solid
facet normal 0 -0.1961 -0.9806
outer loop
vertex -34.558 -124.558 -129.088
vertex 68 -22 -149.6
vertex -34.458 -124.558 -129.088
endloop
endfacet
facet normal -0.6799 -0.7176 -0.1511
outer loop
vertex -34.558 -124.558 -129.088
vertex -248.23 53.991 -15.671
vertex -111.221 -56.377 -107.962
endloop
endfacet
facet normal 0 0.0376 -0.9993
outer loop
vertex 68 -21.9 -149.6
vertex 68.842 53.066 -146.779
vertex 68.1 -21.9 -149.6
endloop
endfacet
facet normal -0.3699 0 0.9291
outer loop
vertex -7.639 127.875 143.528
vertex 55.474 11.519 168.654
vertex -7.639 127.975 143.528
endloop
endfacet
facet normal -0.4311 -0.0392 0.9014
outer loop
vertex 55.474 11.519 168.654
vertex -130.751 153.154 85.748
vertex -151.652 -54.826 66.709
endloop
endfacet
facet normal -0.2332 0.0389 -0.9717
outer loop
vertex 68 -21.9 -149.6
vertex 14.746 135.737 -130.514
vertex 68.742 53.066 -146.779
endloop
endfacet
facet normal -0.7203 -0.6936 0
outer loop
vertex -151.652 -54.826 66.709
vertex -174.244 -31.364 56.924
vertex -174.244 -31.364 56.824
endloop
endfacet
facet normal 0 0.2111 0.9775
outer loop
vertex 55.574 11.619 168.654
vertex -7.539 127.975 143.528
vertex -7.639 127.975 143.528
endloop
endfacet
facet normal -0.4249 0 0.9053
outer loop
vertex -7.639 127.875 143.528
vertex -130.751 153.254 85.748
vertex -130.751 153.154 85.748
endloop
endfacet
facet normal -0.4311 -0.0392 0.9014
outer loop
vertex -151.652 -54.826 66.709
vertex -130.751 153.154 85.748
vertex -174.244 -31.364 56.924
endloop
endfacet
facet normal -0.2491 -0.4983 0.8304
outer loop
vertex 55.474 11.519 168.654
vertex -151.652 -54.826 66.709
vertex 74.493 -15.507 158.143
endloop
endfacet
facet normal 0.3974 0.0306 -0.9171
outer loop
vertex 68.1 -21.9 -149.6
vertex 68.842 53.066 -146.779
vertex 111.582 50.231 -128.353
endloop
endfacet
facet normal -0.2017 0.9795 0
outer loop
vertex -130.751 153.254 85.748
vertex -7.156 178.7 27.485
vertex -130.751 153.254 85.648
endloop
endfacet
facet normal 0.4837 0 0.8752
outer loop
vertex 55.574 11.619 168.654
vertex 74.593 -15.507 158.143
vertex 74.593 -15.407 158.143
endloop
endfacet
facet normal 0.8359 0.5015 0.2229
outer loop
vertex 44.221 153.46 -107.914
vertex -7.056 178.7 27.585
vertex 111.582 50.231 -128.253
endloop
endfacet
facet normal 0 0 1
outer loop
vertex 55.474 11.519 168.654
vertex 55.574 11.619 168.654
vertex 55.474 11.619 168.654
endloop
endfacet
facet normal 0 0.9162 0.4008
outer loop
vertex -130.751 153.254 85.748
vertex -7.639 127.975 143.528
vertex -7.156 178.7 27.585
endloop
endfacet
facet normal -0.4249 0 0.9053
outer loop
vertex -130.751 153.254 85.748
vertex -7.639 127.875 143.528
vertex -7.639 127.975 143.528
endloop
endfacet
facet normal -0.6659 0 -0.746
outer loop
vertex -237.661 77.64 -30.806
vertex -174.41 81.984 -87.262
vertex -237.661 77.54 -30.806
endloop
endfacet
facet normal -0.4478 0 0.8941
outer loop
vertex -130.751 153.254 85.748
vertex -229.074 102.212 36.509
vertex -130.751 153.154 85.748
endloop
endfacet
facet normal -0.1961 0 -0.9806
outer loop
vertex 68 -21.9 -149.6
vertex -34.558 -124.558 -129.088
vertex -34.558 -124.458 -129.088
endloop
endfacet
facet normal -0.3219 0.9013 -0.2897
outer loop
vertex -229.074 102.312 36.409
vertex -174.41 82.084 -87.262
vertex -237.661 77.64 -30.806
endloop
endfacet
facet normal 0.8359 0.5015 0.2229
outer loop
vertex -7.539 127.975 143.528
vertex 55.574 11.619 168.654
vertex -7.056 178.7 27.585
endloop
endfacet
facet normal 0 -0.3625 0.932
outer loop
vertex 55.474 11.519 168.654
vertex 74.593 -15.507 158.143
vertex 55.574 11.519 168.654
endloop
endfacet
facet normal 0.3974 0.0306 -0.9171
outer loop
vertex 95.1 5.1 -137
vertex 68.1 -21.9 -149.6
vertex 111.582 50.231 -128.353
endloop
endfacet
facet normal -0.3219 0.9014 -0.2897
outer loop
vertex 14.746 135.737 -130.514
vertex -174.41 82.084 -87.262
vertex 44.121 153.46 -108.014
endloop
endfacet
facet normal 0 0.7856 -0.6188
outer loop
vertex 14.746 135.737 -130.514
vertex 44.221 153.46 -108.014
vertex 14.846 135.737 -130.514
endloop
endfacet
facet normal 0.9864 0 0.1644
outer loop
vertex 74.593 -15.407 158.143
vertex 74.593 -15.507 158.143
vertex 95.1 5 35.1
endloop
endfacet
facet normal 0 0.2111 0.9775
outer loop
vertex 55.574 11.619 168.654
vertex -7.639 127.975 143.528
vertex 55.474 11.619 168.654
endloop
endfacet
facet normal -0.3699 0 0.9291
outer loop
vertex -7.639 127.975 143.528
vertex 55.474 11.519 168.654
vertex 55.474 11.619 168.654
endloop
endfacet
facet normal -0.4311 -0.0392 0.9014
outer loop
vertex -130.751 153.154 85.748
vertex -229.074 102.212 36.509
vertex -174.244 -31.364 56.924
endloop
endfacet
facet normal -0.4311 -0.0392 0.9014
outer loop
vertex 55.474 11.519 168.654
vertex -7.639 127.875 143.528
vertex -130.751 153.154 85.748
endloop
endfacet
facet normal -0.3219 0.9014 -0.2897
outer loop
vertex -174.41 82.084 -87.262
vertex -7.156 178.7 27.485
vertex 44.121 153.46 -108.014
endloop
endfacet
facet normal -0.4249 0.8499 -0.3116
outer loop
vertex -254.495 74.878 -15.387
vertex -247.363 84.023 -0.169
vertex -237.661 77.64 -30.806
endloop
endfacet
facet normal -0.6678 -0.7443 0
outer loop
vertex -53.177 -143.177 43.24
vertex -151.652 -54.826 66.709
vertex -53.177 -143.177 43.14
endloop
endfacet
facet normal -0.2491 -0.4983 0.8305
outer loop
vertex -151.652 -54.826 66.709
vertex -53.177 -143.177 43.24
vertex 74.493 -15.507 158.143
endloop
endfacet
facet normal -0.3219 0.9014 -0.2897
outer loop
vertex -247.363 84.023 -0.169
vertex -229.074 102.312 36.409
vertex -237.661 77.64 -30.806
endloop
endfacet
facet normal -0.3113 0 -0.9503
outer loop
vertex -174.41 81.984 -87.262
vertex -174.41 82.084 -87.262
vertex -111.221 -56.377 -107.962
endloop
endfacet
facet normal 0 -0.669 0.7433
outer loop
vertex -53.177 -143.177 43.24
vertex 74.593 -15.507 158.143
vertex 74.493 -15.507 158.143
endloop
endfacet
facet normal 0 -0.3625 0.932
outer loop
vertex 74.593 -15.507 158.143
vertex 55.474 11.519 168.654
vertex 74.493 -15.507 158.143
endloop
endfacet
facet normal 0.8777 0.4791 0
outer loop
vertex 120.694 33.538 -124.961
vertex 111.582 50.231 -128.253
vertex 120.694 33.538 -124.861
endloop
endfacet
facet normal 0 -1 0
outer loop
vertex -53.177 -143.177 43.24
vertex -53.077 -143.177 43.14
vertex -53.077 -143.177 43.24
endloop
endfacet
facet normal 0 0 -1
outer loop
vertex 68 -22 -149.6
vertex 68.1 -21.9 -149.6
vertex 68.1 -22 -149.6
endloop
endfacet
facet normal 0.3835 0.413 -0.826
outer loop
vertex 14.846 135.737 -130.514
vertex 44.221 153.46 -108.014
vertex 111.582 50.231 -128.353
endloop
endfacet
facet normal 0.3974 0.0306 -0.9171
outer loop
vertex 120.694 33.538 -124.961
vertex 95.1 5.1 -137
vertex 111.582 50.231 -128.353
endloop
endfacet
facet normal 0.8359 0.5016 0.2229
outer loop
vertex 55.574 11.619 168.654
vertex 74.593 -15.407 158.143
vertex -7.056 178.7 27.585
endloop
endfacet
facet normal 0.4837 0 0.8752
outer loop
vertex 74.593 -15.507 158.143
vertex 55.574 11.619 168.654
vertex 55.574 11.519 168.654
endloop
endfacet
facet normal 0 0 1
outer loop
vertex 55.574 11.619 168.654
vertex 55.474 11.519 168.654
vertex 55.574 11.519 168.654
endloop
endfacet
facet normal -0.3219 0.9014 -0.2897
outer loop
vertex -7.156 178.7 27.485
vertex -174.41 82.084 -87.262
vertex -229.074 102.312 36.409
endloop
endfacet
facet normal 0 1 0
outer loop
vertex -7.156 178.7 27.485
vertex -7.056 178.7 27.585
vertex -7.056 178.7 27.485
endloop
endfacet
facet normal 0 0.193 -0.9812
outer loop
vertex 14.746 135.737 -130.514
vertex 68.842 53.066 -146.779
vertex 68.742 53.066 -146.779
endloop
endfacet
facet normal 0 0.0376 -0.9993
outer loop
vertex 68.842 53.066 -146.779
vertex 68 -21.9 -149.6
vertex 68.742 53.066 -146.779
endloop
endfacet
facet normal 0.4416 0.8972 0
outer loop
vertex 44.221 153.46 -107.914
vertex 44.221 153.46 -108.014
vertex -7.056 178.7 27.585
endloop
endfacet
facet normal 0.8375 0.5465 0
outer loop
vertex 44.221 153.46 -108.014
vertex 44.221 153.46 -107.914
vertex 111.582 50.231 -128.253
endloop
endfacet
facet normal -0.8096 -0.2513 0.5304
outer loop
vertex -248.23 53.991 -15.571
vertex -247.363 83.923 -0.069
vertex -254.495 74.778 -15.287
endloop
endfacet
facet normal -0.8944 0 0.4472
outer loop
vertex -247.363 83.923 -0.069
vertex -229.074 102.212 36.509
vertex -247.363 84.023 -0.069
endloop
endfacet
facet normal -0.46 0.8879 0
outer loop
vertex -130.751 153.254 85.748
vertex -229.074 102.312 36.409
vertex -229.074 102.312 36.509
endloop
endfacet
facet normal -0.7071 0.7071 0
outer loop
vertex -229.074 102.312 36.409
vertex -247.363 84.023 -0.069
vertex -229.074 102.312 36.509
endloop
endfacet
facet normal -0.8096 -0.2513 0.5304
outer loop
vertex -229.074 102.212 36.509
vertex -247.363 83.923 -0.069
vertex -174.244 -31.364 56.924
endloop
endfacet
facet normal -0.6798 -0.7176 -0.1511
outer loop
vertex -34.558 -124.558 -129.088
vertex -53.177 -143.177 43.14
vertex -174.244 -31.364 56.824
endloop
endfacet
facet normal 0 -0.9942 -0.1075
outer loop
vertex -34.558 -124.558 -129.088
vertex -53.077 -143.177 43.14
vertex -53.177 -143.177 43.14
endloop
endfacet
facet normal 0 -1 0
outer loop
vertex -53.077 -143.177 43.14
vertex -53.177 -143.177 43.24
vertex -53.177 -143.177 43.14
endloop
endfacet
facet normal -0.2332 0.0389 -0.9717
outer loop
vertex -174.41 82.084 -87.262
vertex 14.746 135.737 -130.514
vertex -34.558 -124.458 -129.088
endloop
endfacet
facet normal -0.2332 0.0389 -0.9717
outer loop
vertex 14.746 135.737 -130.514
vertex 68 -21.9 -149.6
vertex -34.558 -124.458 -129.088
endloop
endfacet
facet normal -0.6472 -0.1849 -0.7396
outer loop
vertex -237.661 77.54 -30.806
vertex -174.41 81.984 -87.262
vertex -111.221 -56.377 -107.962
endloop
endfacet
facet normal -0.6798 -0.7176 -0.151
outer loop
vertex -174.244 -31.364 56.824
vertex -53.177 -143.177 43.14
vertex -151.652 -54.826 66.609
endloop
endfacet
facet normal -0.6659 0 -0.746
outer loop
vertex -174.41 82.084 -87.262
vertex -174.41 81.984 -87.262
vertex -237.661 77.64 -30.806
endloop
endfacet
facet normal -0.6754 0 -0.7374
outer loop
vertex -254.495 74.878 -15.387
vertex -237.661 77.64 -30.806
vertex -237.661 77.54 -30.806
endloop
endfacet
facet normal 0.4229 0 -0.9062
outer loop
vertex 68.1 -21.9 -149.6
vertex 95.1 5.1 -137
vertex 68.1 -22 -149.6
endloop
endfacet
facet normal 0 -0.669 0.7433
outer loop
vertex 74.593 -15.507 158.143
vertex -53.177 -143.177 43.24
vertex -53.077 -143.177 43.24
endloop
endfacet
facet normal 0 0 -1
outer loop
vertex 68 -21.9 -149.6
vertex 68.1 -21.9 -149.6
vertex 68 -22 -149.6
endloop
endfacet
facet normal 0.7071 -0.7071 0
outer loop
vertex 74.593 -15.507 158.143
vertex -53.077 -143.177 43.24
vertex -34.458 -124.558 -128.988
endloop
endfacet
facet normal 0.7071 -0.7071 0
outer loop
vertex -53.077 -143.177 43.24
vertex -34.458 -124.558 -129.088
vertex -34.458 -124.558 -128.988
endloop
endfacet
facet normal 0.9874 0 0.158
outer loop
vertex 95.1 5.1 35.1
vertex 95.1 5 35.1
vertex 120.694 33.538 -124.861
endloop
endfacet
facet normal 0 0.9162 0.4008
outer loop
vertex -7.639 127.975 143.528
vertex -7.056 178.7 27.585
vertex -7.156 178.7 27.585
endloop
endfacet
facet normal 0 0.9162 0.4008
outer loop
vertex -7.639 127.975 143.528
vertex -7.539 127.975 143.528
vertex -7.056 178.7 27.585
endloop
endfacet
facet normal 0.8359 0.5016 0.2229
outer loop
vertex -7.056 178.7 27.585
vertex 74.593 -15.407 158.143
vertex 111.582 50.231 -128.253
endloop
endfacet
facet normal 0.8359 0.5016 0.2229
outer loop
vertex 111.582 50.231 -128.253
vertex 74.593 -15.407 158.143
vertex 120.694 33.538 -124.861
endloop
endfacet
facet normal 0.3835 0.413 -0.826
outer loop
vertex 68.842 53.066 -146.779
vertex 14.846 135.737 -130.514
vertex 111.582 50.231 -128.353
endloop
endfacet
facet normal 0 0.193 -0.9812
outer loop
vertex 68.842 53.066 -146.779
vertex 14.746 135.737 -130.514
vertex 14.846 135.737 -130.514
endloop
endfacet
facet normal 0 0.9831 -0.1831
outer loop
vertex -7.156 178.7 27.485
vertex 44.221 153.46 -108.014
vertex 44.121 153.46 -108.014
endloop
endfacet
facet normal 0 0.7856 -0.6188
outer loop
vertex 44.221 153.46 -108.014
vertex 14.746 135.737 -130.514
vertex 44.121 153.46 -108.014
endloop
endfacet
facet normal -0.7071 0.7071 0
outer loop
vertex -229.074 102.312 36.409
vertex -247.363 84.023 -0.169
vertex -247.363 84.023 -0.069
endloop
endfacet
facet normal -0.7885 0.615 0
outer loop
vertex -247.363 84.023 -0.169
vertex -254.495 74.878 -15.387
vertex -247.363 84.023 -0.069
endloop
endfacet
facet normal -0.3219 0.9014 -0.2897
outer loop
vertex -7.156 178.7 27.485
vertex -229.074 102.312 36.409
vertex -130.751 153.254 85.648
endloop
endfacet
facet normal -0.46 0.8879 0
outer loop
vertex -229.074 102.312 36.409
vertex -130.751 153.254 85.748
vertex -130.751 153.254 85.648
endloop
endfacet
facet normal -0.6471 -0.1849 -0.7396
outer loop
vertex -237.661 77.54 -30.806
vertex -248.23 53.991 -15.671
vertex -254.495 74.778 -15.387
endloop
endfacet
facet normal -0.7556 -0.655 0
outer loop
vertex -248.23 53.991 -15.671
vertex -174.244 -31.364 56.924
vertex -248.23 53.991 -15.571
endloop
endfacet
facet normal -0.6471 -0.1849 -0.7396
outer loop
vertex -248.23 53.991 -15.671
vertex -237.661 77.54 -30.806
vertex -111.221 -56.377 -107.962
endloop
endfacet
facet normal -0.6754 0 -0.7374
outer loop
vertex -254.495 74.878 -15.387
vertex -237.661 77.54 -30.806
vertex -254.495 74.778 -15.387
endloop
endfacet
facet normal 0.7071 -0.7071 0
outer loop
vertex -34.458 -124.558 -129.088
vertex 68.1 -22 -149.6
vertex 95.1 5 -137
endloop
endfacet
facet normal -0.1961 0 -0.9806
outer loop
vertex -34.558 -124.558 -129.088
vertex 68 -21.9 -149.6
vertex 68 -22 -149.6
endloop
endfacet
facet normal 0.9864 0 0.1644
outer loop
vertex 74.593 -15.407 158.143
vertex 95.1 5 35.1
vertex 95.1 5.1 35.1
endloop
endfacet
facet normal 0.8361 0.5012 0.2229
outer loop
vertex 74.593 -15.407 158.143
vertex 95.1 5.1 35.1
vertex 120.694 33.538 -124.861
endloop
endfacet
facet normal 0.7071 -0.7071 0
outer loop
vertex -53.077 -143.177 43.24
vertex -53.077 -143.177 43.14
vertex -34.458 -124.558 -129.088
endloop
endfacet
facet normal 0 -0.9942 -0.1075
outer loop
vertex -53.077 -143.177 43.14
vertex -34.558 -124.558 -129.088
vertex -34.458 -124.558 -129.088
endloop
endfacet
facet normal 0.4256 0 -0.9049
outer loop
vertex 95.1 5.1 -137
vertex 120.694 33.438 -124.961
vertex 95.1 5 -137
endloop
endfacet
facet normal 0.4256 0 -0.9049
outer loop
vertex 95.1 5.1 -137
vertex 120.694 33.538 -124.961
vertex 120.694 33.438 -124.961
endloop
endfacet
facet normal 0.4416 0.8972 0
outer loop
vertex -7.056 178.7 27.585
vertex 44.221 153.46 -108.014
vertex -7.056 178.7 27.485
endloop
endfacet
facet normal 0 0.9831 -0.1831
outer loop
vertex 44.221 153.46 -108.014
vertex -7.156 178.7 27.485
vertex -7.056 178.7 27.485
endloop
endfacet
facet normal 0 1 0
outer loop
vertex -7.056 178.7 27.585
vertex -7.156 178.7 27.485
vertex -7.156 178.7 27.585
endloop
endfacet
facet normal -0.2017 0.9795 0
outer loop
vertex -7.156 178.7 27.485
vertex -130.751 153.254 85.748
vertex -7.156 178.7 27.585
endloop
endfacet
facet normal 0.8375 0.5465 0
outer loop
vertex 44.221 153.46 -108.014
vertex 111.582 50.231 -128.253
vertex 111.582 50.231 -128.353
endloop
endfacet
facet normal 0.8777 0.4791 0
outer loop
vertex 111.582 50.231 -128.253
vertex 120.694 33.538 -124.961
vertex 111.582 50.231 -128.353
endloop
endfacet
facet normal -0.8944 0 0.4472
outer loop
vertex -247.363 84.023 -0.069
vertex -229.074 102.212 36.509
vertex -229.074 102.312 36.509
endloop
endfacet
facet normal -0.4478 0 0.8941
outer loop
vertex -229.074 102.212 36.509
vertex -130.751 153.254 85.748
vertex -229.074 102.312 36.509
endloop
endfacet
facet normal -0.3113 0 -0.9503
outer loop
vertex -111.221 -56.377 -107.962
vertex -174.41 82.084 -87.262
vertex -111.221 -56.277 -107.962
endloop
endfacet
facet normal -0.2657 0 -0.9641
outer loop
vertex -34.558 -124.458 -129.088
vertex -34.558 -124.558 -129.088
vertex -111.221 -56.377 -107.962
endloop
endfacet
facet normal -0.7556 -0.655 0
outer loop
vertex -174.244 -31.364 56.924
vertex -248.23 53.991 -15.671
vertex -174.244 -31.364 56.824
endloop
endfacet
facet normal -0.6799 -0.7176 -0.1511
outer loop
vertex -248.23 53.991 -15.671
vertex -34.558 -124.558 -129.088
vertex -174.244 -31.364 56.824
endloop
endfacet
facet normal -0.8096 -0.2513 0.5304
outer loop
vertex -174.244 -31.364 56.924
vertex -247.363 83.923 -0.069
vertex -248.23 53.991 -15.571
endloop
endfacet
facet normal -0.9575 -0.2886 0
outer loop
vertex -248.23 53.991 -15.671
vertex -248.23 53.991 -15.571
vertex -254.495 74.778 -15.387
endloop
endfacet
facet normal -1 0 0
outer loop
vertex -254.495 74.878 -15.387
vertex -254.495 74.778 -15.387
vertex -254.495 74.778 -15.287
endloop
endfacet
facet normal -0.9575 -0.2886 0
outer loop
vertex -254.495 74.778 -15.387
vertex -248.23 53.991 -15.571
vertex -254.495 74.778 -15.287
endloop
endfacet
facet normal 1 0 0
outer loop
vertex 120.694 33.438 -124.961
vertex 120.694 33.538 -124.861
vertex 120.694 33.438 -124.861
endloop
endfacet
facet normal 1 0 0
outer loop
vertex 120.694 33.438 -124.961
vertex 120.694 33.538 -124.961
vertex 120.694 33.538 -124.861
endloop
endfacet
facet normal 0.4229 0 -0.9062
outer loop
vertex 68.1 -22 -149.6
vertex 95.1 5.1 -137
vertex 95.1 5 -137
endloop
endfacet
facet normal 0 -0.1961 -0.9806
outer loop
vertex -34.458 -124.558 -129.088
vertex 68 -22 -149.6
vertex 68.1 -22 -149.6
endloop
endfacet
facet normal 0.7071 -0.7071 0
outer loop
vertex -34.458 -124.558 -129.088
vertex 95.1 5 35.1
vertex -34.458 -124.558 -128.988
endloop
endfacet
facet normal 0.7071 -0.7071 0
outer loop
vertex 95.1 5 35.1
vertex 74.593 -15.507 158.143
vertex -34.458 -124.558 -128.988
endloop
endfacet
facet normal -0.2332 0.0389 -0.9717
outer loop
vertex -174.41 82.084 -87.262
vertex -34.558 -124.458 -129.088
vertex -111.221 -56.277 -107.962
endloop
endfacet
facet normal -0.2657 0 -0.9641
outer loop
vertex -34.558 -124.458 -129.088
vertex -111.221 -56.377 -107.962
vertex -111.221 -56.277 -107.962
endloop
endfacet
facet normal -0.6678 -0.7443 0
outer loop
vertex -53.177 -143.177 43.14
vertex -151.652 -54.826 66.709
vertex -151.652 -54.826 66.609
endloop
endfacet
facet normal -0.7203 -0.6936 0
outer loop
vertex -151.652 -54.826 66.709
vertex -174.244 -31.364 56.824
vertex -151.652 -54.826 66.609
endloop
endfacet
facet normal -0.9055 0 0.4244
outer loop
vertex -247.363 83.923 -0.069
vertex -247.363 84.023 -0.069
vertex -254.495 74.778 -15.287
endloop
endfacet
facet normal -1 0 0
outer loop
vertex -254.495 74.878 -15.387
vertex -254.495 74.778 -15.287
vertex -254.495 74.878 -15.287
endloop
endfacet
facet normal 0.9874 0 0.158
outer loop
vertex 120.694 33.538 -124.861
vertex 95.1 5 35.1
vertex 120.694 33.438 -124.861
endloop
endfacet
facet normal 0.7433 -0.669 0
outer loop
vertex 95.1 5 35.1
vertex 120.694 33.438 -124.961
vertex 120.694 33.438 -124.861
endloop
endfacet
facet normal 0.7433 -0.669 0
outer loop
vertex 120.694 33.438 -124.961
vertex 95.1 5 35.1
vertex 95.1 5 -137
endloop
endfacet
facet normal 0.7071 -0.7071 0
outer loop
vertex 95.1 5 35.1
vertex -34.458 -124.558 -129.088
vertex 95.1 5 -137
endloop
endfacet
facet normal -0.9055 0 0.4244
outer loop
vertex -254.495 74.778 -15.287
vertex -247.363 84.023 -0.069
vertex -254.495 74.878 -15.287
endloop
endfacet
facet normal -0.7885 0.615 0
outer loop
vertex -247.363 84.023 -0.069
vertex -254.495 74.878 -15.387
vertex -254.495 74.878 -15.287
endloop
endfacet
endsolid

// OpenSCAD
hull(){ translate([-7.63928317956,127.875266146,143.427963094])cube(0.1,0.1,0.1);
translate([55.474222747,11.5190869736,168.553719008])cube(0.1,0.1,0.1);
translate([68.7422383765,52.966076026,-146.779494169])cube(0.1,0.1,0.1);
translate([111.48212591,50.1312875672,-128.353369187])cube(0.1,0.1,0.1);
translate([120.593827501,33.4375861119,-124.961421879])cube(0.1,0.1,0.1);
translate([14.7461457495,135.637112253,-130.51359049])cube(0.1,0.1,0.1);
translate([44.1209004463,153.360178537,-108.013778382])cube(0.1,0.1,0.1);
translate([-174.409836066,81.9836065574,-87.262295082])cube(0.1,0.1,0.1);
translate([-7.15618860511,178.600196464,27.4852652259])cube(0.1,0.1,0.1);
translate([-130.751001335,153.154205607,85.6475300401])cube(0.1,0.1,0.1);
translate([74.4927536232,-15.5072463768,158.043478261])cube(0.1,0.1,0.1);
translate([95.0,5.0,35.0])cube(0.1,0.1,0.1);
translate([68.0,-22.0,-149.6])cube(0.1,0.1,0.1);
translate([95.0,5.0,-137.0])cube(0.1,0.1,0.1);
translate([-229.073953306,102.212077736,36.4086344072])cube(0.1,0.1,0.1);
translate([-237.661290323,77.5403225806,-30.8064516129])cube(0.1,0.1,0.1);
translate([-254.49461937,74.7776006377,-15.3866082104])cube(0.1,0.1,0.1);
translate([-247.363002851,83.9230281913,-0.16946468166])cube(0.1,0.1,0.1);
translate([-53.1773399015,-143.177339901,43.1403940887])cube(0.1,0.1,0.1);
translate([-151.652173913,-54.8260869565,66.6086956522])cube(0.1,0.1,0.1);
translate([-34.5580110497,-124.55801105,-129.08839779])cube(0.1,0.1,0.1);
translate([-174.243747519,-31.3636363636,56.8241365621])cube(0.1,0.1,0.1);
translate([-111.221453287,-56.3771626298,-107.961937716])cube(0.1,0.1,0.1);
translate([-248.230150754,53.9909547739,-15.6713567839])cube(0.1,0.1,0.1); }
